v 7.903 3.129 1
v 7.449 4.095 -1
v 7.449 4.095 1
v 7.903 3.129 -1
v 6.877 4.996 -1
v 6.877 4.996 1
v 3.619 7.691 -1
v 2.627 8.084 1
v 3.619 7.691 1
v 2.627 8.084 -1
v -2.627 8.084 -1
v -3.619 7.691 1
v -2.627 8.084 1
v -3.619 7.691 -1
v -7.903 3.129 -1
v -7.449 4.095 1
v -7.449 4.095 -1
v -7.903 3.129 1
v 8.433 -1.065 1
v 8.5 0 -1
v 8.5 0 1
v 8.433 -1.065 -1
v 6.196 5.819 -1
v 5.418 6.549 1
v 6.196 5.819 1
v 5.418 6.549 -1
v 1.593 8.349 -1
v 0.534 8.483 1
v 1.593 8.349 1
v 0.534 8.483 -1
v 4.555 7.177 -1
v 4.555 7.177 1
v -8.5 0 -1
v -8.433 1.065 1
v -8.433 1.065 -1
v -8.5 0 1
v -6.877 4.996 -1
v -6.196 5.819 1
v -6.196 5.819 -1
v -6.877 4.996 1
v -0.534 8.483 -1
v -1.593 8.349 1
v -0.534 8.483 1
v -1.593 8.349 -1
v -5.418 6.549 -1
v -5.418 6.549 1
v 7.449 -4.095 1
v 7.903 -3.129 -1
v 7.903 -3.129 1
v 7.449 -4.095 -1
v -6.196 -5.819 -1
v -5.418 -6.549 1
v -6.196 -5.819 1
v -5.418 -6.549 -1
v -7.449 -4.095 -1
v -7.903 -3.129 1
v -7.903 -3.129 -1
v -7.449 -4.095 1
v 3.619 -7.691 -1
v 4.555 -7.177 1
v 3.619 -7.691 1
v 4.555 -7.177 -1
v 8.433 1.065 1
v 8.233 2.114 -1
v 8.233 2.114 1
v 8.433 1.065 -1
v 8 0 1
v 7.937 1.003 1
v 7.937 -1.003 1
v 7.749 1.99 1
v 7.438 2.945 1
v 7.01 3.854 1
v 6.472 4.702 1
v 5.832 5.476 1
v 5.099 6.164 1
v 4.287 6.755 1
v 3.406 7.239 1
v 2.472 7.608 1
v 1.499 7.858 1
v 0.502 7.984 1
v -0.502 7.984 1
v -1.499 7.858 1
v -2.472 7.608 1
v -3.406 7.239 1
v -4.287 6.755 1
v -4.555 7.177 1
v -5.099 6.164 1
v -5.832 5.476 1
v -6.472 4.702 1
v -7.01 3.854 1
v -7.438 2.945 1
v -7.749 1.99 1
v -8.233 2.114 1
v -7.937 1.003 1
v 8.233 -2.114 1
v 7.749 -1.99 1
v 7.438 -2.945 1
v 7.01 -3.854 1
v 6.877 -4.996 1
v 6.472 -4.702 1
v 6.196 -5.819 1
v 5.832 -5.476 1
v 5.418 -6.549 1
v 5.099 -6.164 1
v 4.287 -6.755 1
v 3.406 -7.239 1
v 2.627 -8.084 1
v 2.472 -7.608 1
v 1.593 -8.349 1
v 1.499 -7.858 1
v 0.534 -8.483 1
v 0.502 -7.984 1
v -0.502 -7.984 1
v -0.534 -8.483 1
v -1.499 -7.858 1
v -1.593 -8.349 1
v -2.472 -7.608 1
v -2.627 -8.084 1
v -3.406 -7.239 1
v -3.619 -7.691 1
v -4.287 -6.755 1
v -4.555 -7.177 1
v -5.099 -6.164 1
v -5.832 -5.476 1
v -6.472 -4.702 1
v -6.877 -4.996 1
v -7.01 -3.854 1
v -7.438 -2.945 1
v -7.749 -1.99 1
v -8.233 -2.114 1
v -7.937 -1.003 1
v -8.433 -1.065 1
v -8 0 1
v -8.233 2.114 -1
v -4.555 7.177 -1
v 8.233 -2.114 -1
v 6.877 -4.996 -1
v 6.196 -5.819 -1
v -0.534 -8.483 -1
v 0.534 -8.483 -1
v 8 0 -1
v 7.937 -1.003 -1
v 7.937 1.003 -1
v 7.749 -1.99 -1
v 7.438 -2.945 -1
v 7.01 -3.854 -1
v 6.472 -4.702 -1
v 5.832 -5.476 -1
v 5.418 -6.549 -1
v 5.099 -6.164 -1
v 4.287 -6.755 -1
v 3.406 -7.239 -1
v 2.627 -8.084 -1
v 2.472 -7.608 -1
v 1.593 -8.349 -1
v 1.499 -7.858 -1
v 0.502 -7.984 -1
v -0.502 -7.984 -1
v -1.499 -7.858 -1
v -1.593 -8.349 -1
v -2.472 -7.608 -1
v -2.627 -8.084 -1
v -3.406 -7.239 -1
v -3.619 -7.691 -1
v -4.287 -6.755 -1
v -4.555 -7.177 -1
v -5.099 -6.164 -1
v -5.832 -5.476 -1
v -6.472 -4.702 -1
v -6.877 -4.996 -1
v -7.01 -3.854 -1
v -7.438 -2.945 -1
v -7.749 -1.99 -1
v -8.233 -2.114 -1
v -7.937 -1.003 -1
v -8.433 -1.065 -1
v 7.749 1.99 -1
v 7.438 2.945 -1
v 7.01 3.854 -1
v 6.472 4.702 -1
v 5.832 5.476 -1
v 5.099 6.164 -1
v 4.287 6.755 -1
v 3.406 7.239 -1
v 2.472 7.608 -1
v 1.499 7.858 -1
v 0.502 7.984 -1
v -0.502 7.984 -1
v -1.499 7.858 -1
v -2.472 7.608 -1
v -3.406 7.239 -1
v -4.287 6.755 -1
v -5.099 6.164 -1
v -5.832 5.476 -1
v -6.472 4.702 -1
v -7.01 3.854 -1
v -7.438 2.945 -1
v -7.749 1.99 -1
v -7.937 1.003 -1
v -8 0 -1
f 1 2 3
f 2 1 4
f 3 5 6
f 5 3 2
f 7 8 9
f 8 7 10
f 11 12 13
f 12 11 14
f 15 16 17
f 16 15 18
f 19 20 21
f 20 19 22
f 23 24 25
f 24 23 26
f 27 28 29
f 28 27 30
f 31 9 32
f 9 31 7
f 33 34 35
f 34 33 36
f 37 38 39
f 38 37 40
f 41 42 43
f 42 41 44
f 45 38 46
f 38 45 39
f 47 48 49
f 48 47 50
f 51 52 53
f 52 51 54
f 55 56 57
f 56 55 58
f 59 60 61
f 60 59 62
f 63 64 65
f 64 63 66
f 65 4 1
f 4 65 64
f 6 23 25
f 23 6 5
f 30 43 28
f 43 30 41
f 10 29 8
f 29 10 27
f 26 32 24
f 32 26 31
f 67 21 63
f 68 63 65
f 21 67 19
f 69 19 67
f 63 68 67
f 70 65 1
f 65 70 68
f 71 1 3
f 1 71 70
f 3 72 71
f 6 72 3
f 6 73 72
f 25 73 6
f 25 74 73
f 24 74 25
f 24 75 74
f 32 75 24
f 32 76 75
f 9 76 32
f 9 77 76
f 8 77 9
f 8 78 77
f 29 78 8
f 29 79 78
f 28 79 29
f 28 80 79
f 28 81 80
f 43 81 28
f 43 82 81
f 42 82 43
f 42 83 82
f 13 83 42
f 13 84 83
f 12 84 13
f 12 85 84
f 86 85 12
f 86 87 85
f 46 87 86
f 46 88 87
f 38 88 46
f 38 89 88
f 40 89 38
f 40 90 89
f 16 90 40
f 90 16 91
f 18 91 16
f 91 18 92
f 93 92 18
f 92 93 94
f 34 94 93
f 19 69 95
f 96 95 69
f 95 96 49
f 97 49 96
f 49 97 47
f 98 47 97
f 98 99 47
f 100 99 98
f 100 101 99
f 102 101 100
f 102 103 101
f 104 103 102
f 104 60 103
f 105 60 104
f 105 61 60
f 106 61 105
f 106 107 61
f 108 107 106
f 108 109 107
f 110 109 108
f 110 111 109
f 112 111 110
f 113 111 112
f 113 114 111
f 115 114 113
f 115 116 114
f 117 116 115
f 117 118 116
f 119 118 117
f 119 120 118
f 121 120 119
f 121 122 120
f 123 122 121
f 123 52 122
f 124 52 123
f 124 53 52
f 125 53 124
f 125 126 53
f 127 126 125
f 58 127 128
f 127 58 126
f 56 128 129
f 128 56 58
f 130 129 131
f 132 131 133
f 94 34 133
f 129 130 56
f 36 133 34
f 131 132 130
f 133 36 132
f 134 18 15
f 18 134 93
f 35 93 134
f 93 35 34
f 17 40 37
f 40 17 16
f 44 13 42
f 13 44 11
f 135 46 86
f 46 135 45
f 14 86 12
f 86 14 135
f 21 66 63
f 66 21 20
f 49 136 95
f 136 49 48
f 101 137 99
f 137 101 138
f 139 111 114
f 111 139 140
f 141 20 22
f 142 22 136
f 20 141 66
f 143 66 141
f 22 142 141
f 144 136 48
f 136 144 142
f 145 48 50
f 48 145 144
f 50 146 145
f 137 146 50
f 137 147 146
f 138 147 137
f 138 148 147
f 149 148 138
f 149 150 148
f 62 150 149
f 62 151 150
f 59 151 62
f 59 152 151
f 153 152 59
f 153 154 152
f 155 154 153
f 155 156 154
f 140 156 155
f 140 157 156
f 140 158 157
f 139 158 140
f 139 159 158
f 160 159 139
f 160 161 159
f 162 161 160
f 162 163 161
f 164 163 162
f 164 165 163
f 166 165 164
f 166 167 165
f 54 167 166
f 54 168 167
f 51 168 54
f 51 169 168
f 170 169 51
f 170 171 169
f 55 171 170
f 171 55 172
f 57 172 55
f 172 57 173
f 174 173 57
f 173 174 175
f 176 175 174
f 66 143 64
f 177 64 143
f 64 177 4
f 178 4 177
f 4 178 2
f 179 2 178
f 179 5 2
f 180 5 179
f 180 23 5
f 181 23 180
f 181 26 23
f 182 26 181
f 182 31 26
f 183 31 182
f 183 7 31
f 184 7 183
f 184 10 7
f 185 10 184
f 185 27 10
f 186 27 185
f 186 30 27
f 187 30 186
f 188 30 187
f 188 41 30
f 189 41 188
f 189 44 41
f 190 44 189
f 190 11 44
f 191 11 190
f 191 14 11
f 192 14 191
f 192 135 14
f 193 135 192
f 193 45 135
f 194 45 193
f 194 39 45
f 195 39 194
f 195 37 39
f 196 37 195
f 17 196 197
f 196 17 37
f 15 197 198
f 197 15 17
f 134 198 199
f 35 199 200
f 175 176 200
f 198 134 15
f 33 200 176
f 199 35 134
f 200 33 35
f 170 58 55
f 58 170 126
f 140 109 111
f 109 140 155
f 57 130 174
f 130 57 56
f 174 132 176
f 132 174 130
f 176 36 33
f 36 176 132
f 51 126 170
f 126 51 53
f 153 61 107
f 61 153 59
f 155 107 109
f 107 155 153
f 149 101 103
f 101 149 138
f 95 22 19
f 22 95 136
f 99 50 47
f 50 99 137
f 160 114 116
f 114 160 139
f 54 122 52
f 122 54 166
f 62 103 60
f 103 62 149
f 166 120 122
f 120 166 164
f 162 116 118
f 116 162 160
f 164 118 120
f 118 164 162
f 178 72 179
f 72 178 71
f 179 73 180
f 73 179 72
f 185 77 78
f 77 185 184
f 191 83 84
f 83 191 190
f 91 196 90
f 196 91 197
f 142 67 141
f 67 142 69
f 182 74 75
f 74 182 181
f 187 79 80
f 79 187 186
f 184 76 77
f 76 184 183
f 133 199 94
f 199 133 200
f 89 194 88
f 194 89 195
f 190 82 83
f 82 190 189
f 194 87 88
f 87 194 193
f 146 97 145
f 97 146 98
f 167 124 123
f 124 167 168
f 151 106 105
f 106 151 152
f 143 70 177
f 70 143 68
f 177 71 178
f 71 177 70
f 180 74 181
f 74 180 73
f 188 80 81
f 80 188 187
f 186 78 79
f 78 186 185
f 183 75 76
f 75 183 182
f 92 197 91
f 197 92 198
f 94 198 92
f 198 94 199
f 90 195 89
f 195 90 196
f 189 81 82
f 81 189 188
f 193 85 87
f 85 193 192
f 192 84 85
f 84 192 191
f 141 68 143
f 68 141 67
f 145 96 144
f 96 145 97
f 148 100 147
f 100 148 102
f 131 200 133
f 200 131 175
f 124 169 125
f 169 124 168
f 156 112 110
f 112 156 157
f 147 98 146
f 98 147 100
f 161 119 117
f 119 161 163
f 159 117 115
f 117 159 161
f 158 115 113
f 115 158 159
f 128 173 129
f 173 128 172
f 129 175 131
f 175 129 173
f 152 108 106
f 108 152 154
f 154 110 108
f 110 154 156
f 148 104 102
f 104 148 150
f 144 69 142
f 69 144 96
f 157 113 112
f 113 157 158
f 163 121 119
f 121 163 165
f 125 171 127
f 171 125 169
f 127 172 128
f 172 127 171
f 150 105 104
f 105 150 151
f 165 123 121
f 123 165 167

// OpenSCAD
$fn = 50;


difference() {
	union() {
		translate(v = [0, 0, -1.0000000000]) {
			cylinder(h = 2, r = 8.5000000000);
		}
	}
	union() {
		translate(v = [0, 0, -100.0000000000]) {
			cylinder(h = 200, r = 8);
		}
	}
}
